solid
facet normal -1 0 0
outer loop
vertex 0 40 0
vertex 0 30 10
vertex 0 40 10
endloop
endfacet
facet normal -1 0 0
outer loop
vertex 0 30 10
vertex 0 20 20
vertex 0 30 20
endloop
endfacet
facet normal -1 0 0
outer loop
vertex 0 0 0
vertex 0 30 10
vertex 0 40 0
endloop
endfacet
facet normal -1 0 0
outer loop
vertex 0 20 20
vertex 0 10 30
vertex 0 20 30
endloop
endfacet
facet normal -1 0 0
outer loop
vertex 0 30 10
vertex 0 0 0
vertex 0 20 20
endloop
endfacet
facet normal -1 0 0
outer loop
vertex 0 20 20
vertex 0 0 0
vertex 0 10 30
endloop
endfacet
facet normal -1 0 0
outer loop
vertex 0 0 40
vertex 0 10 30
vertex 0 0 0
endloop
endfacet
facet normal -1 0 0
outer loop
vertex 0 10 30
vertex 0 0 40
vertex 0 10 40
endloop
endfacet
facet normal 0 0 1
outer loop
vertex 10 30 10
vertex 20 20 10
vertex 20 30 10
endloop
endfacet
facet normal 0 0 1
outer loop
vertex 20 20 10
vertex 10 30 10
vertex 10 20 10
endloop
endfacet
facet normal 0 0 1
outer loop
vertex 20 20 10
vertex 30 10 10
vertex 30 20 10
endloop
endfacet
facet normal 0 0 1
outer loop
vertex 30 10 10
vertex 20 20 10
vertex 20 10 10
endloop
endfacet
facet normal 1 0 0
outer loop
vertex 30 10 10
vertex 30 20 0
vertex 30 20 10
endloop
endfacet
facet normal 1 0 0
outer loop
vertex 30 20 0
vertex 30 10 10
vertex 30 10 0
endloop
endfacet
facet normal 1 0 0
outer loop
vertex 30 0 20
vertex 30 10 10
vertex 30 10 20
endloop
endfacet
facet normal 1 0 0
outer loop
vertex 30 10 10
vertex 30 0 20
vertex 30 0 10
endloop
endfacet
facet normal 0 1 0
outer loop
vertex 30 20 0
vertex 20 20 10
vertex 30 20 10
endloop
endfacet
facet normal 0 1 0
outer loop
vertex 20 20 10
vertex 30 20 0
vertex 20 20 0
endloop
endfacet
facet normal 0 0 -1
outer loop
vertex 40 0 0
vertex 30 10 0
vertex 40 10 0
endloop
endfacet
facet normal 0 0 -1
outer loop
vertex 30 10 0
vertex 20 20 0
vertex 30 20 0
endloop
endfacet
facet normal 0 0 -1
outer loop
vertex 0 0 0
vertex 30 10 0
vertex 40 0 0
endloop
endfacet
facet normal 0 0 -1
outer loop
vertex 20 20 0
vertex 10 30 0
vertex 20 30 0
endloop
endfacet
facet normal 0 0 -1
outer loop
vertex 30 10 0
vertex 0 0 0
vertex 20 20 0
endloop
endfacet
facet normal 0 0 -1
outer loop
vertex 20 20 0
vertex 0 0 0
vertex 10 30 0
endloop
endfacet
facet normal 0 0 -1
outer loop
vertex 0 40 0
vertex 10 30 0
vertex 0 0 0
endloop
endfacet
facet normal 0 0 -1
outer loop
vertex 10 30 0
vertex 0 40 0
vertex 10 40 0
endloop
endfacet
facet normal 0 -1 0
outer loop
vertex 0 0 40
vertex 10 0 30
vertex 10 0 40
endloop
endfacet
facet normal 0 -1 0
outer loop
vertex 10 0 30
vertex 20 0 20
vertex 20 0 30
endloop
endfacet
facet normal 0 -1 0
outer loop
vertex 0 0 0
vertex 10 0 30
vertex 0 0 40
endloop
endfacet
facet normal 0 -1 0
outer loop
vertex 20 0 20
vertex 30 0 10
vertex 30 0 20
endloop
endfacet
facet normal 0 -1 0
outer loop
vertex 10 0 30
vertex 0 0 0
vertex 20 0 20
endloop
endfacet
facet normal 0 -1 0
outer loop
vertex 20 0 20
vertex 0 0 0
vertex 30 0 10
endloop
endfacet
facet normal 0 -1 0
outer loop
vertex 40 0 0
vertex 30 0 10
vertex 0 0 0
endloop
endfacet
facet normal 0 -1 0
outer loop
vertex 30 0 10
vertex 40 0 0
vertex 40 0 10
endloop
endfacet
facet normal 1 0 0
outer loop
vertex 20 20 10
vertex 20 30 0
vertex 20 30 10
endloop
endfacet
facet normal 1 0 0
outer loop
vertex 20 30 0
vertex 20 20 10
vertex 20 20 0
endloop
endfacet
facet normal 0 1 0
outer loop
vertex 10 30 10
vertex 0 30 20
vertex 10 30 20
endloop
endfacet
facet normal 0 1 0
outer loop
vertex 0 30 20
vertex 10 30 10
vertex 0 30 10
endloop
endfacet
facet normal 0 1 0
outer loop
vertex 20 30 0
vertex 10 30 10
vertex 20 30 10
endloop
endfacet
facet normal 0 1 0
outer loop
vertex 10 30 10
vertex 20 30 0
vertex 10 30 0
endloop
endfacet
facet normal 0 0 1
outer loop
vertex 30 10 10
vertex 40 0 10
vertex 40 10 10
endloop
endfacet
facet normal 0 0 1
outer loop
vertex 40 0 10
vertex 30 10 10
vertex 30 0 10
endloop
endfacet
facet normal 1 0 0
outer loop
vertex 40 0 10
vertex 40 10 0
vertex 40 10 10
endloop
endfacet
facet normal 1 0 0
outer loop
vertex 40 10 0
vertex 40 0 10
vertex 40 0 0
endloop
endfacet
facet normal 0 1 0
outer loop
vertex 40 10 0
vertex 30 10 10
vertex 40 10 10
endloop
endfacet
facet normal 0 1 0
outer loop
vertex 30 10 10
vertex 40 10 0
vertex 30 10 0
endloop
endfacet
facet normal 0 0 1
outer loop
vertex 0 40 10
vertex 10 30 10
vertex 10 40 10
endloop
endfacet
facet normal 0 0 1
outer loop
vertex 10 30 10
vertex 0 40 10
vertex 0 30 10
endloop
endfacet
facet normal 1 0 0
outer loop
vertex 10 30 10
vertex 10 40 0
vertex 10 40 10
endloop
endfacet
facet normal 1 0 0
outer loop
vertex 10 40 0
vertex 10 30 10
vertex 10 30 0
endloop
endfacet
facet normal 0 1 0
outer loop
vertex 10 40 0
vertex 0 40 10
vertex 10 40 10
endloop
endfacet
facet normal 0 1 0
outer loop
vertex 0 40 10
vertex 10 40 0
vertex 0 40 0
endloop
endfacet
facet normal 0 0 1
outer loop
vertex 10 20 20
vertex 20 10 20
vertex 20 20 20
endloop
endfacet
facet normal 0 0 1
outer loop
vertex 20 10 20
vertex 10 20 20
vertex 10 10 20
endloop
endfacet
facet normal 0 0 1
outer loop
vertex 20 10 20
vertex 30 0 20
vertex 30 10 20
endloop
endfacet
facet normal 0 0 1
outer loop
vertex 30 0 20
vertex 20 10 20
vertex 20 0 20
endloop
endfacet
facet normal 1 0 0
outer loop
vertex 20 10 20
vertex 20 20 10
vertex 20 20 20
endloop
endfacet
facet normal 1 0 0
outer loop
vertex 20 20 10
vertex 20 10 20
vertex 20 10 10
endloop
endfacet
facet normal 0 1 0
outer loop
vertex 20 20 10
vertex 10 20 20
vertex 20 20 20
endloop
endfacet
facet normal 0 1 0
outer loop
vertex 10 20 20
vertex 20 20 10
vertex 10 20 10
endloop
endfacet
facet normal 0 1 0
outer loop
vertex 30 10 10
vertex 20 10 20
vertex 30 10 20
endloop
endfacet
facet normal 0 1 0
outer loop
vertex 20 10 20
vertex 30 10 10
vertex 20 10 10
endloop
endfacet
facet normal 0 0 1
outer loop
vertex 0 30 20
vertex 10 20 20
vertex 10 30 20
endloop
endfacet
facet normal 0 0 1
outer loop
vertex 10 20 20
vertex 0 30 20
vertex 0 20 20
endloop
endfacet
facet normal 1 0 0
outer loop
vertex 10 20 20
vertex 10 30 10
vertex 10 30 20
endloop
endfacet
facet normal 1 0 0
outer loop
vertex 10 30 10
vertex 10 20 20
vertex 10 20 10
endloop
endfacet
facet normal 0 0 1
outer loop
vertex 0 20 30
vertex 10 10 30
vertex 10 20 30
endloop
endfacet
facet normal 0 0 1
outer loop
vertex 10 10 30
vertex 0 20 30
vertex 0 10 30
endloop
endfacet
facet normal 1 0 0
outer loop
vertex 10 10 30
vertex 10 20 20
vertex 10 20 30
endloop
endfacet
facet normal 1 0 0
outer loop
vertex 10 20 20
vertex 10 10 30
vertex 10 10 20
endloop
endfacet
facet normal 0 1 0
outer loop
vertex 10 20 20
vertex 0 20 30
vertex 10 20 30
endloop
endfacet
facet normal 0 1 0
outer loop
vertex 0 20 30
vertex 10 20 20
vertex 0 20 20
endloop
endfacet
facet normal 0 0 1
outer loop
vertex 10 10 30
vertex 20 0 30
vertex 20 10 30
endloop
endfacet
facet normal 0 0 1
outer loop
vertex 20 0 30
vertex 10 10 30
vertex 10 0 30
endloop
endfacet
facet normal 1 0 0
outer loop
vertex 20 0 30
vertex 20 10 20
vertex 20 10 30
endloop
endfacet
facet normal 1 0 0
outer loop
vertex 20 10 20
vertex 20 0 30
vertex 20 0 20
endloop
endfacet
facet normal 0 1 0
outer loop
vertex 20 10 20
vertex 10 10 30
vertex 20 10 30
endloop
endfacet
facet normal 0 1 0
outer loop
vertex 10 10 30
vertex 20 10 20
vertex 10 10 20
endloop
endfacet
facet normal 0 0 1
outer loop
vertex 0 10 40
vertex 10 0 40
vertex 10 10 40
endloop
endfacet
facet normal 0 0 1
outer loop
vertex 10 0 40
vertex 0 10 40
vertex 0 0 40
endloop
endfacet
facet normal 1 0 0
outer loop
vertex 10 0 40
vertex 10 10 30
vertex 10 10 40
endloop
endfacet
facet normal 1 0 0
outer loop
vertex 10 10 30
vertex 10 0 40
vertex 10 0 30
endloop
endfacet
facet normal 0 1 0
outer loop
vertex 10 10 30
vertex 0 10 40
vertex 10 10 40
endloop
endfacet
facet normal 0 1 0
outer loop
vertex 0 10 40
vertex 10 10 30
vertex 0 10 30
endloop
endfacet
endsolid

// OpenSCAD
$fn=50;

// level 1
cube(size=[30, 20, 10]);
translate([0, 20, 0]) {
  cube([20, 10, 10]);
}
translate([30, 0, 0]) {
  cube([10, 10, 10]);
}
translate([0, 30, 0]) {
  cube([10, 10, 10]);
}

// level 2
translate([0, 0, 10]) {
  cube([20, 20, 10]);
}
translate([20, 0, 10]) {
  cube([10, 10, 10]);
}
translate([0, 20, 10]) {
  cube([10, 10, 10]);
}

// level 3
translate([0, 0, 20]) {
  cube([10, 20, 10]);
}
translate([10, 0, 20]) {
  cube([10, 10, 10]);
}

//level 4
translate([0, 0, 30]) {
  cube([10, 10, 10]);
}
